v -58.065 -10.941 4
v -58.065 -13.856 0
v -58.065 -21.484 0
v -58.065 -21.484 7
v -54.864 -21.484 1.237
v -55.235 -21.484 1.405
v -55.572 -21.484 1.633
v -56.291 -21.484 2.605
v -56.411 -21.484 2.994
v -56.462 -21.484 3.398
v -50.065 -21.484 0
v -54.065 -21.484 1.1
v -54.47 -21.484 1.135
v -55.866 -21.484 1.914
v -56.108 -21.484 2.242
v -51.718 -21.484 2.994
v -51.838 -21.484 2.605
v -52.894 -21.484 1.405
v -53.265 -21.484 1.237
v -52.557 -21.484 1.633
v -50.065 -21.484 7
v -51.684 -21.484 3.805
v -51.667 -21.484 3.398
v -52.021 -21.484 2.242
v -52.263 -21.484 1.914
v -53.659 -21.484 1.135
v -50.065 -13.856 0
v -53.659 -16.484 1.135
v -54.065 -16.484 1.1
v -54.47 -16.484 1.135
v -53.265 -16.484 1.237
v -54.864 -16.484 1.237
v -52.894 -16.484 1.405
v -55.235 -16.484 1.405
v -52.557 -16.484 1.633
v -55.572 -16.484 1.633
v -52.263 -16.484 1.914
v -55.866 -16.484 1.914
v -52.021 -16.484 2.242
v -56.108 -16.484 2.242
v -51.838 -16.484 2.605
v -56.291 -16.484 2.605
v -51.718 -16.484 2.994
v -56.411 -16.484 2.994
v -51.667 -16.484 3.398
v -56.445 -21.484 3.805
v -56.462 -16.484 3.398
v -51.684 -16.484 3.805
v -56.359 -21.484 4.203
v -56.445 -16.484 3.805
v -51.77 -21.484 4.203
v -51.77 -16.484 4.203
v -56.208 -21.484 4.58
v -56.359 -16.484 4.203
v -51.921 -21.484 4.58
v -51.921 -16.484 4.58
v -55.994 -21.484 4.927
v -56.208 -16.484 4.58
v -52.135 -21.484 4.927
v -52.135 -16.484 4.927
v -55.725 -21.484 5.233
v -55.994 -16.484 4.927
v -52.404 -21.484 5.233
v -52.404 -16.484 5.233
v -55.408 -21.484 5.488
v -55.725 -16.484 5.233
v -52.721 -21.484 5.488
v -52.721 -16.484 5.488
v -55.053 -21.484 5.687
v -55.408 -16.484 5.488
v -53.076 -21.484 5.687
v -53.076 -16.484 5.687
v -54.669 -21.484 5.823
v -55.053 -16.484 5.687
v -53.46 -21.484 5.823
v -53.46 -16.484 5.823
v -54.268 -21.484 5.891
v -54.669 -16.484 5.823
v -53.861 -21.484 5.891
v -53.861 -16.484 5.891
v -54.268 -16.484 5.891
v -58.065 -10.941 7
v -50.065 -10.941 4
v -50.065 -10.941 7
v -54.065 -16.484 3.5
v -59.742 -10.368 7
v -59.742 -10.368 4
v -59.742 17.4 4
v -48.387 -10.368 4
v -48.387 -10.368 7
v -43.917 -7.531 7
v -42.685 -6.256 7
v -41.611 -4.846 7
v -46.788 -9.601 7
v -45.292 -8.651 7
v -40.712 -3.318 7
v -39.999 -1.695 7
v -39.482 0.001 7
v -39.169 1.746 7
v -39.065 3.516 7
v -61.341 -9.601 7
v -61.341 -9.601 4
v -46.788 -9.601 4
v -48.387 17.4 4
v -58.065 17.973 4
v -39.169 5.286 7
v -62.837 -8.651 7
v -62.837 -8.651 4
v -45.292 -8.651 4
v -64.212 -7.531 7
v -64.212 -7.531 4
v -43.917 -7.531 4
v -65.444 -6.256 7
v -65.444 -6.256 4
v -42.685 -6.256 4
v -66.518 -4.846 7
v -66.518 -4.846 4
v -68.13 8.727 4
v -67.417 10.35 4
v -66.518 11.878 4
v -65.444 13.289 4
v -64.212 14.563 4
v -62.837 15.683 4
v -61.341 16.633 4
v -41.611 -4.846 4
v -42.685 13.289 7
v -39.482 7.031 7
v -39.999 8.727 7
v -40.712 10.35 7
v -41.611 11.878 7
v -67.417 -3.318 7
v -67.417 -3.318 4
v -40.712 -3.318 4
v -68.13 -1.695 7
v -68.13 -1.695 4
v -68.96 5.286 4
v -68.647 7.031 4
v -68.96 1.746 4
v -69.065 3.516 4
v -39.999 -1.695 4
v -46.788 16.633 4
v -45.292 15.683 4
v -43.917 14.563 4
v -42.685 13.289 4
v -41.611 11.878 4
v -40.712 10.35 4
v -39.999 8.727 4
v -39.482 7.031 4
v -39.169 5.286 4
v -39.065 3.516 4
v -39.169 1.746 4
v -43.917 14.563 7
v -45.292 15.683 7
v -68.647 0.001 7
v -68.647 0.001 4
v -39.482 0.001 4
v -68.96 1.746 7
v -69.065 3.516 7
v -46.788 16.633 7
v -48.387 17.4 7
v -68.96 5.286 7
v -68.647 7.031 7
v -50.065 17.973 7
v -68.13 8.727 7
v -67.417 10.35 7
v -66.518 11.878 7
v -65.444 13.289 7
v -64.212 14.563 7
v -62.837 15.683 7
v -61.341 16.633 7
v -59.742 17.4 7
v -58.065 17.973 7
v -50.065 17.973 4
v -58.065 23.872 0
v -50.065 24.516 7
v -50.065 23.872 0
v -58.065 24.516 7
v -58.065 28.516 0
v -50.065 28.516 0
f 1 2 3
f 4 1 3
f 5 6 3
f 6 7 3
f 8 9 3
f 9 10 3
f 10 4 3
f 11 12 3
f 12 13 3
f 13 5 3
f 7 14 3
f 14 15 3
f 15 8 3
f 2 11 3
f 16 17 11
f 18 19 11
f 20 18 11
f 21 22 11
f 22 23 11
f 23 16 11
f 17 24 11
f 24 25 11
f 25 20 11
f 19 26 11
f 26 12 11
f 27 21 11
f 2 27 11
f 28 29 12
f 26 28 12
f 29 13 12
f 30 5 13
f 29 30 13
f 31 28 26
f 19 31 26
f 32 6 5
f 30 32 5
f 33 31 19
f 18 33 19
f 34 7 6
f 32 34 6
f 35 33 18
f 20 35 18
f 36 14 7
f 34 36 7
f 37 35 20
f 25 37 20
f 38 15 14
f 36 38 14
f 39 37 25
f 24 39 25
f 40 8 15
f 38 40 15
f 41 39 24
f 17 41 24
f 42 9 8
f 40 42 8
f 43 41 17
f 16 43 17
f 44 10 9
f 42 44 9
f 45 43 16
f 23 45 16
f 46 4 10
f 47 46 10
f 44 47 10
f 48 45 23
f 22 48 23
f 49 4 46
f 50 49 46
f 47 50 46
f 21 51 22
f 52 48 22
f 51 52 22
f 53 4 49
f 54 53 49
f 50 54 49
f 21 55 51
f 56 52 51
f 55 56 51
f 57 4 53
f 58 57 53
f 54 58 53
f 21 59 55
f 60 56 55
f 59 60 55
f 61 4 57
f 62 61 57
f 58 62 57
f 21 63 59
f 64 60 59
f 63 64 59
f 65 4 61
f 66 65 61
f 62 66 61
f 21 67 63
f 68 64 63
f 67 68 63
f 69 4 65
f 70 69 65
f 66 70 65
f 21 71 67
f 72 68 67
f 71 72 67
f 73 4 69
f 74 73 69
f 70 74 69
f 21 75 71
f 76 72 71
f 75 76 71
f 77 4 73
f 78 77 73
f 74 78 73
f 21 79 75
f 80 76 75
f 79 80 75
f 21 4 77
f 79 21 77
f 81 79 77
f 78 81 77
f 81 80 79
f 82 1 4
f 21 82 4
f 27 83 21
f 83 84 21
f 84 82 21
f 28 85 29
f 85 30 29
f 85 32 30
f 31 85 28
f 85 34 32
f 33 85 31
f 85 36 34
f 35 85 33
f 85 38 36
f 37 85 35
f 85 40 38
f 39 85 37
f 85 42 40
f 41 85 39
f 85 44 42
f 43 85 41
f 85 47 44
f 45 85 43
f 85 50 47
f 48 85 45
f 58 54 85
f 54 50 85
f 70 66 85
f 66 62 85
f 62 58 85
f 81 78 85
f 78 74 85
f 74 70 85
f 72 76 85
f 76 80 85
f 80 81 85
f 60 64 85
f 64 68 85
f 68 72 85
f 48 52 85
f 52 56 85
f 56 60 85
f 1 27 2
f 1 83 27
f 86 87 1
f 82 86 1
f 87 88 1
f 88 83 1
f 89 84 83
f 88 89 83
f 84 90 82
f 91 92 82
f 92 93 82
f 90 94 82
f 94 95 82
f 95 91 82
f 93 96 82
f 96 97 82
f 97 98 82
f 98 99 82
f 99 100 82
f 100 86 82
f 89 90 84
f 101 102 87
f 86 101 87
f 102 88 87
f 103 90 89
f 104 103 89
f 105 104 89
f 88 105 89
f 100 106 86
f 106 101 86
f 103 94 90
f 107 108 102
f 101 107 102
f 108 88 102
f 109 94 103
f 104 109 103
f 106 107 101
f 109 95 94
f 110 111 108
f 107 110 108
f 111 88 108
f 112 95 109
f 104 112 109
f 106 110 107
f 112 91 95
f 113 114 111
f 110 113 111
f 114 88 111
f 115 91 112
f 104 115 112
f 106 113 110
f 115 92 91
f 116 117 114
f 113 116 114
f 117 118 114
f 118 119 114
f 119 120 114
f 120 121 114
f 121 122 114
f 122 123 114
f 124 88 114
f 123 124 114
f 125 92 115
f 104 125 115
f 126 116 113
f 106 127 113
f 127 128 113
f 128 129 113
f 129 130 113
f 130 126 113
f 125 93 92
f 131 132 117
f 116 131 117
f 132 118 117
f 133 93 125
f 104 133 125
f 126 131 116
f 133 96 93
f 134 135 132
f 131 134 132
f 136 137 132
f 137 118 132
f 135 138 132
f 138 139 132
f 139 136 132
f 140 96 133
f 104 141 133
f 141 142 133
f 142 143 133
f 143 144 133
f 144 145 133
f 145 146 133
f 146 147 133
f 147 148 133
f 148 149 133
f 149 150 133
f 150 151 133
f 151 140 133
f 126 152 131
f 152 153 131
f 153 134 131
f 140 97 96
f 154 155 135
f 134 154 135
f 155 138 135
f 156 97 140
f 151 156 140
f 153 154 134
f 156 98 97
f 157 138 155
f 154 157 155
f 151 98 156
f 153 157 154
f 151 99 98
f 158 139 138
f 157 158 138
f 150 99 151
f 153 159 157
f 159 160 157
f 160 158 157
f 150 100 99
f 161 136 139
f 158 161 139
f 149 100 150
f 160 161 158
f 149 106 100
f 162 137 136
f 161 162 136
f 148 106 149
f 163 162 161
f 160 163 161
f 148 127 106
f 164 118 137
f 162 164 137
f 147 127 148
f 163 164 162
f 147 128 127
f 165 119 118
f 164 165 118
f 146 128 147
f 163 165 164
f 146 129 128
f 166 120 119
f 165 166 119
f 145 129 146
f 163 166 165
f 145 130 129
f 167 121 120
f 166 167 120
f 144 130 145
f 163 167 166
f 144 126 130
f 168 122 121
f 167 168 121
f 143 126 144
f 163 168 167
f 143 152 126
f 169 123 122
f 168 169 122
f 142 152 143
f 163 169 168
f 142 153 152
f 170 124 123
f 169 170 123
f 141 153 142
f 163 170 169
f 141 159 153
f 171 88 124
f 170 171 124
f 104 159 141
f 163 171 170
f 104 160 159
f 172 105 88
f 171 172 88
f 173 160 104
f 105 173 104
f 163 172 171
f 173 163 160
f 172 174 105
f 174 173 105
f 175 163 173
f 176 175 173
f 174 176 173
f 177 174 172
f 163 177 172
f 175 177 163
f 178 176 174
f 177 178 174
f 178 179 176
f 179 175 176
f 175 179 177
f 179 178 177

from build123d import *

# Parameters (mm, degrees)
SALIENTE_EXTRUIR1_DEPTH = 7
CROQUIS2_R              = 2.4
CORTAR_EXTRUIR1_DEPTH   = 5
CORTAR_EXTRUIR2_DEPTH   = 8
CROQUIS4_W              = 4
CROQUIS4_H              = 37.728244425
CORTAR_EXTRUIR3_DEPTH   = 40
SALIENTE_EXTRUIR2_DEPTH = 8


with BuildPart() as part:
    # Croquis1 → Saliente-Extruir1 (new body)
    with BuildSketch(Plane.XY):
        with BuildLine():
            Line((-58.064516129, 28.516129032), (-50.064516129, 28.516129032))
            Line((-50.064516129, 28.516129032), (-50.064516129, 17.972961327))
            ThreePointArc((-50.064516129, 17.972961327), (-39.064516129, 3.516129032), (-50.064516129, -10.940703263))
            Line((-50.064516129, -10.940703263), (-50.064516129, -21.483870968))
            Line((-50.064516129, -21.483870968), (-58.064516129, -21.483870968))
            Line((-58.064516129, -21.483870968), (-58.064516129, -10.940703263))
            ThreePointArc((-58.064516129, -10.940703263), (-69.064516129, 3.516129032), (-58.064516129, 17.972961327))
            Line((-58.064516129, 17.972961327), (-58.064516129, 28.516129032))
        make_face()
    extrude(amount=SALIENTE_EXTRUIR1_DEPTH)

    # Croquis2 → Cortar-Extruir1 (cut)
    with BuildSketch(Plane.XZ.offset(21.483870968)):
        with Locations(Location((-54.064516129, 3.5, 0), (0, 0, 270))):
            Circle(CROQUIS2_R)
    extrude(amount=-CORTAR_EXTRUIR1_DEPTH, mode=Mode.SUBTRACT)

    # Croquis3 → Cortar-Extruir2 (cut)
    with BuildSketch(Plane.ZY.offset(58.064516129)):
        Polygon((7, 24.516129032), (0, 28.516129032), (7, 28.516129032), align=None)
    extrude(amount=-CORTAR_EXTRUIR2_DEPTH, mode=Mode.SUBTRACT)

    # Croquis4 → Cortar-Extruir3 (cut)
    with BuildSketch(Plane.ZY.offset(69.064516129)):
        with Locations((2, 5.007952278)):
            Rectangle(CROQUIS4_W, CROQUIS4_H)
    extrude(amount=-CORTAR_EXTRUIR3_DEPTH, mode=Mode.SUBTRACT)

    # Croquis5 → Saliente-Extruir2 (add)
    with BuildSketch(Plane.ZY.offset(58.064516129)):
        Polygon((0, 23.87207449), (4, 17.972961327), (4, 23.87207449), align=None)
        Polygon((0, -13.856169935), (4, -10.940703263), (4, -13.856169935), align=None)
    extrude(amount=-SALIENTE_EXTRUIR2_DEPTH)


solid = part.part
